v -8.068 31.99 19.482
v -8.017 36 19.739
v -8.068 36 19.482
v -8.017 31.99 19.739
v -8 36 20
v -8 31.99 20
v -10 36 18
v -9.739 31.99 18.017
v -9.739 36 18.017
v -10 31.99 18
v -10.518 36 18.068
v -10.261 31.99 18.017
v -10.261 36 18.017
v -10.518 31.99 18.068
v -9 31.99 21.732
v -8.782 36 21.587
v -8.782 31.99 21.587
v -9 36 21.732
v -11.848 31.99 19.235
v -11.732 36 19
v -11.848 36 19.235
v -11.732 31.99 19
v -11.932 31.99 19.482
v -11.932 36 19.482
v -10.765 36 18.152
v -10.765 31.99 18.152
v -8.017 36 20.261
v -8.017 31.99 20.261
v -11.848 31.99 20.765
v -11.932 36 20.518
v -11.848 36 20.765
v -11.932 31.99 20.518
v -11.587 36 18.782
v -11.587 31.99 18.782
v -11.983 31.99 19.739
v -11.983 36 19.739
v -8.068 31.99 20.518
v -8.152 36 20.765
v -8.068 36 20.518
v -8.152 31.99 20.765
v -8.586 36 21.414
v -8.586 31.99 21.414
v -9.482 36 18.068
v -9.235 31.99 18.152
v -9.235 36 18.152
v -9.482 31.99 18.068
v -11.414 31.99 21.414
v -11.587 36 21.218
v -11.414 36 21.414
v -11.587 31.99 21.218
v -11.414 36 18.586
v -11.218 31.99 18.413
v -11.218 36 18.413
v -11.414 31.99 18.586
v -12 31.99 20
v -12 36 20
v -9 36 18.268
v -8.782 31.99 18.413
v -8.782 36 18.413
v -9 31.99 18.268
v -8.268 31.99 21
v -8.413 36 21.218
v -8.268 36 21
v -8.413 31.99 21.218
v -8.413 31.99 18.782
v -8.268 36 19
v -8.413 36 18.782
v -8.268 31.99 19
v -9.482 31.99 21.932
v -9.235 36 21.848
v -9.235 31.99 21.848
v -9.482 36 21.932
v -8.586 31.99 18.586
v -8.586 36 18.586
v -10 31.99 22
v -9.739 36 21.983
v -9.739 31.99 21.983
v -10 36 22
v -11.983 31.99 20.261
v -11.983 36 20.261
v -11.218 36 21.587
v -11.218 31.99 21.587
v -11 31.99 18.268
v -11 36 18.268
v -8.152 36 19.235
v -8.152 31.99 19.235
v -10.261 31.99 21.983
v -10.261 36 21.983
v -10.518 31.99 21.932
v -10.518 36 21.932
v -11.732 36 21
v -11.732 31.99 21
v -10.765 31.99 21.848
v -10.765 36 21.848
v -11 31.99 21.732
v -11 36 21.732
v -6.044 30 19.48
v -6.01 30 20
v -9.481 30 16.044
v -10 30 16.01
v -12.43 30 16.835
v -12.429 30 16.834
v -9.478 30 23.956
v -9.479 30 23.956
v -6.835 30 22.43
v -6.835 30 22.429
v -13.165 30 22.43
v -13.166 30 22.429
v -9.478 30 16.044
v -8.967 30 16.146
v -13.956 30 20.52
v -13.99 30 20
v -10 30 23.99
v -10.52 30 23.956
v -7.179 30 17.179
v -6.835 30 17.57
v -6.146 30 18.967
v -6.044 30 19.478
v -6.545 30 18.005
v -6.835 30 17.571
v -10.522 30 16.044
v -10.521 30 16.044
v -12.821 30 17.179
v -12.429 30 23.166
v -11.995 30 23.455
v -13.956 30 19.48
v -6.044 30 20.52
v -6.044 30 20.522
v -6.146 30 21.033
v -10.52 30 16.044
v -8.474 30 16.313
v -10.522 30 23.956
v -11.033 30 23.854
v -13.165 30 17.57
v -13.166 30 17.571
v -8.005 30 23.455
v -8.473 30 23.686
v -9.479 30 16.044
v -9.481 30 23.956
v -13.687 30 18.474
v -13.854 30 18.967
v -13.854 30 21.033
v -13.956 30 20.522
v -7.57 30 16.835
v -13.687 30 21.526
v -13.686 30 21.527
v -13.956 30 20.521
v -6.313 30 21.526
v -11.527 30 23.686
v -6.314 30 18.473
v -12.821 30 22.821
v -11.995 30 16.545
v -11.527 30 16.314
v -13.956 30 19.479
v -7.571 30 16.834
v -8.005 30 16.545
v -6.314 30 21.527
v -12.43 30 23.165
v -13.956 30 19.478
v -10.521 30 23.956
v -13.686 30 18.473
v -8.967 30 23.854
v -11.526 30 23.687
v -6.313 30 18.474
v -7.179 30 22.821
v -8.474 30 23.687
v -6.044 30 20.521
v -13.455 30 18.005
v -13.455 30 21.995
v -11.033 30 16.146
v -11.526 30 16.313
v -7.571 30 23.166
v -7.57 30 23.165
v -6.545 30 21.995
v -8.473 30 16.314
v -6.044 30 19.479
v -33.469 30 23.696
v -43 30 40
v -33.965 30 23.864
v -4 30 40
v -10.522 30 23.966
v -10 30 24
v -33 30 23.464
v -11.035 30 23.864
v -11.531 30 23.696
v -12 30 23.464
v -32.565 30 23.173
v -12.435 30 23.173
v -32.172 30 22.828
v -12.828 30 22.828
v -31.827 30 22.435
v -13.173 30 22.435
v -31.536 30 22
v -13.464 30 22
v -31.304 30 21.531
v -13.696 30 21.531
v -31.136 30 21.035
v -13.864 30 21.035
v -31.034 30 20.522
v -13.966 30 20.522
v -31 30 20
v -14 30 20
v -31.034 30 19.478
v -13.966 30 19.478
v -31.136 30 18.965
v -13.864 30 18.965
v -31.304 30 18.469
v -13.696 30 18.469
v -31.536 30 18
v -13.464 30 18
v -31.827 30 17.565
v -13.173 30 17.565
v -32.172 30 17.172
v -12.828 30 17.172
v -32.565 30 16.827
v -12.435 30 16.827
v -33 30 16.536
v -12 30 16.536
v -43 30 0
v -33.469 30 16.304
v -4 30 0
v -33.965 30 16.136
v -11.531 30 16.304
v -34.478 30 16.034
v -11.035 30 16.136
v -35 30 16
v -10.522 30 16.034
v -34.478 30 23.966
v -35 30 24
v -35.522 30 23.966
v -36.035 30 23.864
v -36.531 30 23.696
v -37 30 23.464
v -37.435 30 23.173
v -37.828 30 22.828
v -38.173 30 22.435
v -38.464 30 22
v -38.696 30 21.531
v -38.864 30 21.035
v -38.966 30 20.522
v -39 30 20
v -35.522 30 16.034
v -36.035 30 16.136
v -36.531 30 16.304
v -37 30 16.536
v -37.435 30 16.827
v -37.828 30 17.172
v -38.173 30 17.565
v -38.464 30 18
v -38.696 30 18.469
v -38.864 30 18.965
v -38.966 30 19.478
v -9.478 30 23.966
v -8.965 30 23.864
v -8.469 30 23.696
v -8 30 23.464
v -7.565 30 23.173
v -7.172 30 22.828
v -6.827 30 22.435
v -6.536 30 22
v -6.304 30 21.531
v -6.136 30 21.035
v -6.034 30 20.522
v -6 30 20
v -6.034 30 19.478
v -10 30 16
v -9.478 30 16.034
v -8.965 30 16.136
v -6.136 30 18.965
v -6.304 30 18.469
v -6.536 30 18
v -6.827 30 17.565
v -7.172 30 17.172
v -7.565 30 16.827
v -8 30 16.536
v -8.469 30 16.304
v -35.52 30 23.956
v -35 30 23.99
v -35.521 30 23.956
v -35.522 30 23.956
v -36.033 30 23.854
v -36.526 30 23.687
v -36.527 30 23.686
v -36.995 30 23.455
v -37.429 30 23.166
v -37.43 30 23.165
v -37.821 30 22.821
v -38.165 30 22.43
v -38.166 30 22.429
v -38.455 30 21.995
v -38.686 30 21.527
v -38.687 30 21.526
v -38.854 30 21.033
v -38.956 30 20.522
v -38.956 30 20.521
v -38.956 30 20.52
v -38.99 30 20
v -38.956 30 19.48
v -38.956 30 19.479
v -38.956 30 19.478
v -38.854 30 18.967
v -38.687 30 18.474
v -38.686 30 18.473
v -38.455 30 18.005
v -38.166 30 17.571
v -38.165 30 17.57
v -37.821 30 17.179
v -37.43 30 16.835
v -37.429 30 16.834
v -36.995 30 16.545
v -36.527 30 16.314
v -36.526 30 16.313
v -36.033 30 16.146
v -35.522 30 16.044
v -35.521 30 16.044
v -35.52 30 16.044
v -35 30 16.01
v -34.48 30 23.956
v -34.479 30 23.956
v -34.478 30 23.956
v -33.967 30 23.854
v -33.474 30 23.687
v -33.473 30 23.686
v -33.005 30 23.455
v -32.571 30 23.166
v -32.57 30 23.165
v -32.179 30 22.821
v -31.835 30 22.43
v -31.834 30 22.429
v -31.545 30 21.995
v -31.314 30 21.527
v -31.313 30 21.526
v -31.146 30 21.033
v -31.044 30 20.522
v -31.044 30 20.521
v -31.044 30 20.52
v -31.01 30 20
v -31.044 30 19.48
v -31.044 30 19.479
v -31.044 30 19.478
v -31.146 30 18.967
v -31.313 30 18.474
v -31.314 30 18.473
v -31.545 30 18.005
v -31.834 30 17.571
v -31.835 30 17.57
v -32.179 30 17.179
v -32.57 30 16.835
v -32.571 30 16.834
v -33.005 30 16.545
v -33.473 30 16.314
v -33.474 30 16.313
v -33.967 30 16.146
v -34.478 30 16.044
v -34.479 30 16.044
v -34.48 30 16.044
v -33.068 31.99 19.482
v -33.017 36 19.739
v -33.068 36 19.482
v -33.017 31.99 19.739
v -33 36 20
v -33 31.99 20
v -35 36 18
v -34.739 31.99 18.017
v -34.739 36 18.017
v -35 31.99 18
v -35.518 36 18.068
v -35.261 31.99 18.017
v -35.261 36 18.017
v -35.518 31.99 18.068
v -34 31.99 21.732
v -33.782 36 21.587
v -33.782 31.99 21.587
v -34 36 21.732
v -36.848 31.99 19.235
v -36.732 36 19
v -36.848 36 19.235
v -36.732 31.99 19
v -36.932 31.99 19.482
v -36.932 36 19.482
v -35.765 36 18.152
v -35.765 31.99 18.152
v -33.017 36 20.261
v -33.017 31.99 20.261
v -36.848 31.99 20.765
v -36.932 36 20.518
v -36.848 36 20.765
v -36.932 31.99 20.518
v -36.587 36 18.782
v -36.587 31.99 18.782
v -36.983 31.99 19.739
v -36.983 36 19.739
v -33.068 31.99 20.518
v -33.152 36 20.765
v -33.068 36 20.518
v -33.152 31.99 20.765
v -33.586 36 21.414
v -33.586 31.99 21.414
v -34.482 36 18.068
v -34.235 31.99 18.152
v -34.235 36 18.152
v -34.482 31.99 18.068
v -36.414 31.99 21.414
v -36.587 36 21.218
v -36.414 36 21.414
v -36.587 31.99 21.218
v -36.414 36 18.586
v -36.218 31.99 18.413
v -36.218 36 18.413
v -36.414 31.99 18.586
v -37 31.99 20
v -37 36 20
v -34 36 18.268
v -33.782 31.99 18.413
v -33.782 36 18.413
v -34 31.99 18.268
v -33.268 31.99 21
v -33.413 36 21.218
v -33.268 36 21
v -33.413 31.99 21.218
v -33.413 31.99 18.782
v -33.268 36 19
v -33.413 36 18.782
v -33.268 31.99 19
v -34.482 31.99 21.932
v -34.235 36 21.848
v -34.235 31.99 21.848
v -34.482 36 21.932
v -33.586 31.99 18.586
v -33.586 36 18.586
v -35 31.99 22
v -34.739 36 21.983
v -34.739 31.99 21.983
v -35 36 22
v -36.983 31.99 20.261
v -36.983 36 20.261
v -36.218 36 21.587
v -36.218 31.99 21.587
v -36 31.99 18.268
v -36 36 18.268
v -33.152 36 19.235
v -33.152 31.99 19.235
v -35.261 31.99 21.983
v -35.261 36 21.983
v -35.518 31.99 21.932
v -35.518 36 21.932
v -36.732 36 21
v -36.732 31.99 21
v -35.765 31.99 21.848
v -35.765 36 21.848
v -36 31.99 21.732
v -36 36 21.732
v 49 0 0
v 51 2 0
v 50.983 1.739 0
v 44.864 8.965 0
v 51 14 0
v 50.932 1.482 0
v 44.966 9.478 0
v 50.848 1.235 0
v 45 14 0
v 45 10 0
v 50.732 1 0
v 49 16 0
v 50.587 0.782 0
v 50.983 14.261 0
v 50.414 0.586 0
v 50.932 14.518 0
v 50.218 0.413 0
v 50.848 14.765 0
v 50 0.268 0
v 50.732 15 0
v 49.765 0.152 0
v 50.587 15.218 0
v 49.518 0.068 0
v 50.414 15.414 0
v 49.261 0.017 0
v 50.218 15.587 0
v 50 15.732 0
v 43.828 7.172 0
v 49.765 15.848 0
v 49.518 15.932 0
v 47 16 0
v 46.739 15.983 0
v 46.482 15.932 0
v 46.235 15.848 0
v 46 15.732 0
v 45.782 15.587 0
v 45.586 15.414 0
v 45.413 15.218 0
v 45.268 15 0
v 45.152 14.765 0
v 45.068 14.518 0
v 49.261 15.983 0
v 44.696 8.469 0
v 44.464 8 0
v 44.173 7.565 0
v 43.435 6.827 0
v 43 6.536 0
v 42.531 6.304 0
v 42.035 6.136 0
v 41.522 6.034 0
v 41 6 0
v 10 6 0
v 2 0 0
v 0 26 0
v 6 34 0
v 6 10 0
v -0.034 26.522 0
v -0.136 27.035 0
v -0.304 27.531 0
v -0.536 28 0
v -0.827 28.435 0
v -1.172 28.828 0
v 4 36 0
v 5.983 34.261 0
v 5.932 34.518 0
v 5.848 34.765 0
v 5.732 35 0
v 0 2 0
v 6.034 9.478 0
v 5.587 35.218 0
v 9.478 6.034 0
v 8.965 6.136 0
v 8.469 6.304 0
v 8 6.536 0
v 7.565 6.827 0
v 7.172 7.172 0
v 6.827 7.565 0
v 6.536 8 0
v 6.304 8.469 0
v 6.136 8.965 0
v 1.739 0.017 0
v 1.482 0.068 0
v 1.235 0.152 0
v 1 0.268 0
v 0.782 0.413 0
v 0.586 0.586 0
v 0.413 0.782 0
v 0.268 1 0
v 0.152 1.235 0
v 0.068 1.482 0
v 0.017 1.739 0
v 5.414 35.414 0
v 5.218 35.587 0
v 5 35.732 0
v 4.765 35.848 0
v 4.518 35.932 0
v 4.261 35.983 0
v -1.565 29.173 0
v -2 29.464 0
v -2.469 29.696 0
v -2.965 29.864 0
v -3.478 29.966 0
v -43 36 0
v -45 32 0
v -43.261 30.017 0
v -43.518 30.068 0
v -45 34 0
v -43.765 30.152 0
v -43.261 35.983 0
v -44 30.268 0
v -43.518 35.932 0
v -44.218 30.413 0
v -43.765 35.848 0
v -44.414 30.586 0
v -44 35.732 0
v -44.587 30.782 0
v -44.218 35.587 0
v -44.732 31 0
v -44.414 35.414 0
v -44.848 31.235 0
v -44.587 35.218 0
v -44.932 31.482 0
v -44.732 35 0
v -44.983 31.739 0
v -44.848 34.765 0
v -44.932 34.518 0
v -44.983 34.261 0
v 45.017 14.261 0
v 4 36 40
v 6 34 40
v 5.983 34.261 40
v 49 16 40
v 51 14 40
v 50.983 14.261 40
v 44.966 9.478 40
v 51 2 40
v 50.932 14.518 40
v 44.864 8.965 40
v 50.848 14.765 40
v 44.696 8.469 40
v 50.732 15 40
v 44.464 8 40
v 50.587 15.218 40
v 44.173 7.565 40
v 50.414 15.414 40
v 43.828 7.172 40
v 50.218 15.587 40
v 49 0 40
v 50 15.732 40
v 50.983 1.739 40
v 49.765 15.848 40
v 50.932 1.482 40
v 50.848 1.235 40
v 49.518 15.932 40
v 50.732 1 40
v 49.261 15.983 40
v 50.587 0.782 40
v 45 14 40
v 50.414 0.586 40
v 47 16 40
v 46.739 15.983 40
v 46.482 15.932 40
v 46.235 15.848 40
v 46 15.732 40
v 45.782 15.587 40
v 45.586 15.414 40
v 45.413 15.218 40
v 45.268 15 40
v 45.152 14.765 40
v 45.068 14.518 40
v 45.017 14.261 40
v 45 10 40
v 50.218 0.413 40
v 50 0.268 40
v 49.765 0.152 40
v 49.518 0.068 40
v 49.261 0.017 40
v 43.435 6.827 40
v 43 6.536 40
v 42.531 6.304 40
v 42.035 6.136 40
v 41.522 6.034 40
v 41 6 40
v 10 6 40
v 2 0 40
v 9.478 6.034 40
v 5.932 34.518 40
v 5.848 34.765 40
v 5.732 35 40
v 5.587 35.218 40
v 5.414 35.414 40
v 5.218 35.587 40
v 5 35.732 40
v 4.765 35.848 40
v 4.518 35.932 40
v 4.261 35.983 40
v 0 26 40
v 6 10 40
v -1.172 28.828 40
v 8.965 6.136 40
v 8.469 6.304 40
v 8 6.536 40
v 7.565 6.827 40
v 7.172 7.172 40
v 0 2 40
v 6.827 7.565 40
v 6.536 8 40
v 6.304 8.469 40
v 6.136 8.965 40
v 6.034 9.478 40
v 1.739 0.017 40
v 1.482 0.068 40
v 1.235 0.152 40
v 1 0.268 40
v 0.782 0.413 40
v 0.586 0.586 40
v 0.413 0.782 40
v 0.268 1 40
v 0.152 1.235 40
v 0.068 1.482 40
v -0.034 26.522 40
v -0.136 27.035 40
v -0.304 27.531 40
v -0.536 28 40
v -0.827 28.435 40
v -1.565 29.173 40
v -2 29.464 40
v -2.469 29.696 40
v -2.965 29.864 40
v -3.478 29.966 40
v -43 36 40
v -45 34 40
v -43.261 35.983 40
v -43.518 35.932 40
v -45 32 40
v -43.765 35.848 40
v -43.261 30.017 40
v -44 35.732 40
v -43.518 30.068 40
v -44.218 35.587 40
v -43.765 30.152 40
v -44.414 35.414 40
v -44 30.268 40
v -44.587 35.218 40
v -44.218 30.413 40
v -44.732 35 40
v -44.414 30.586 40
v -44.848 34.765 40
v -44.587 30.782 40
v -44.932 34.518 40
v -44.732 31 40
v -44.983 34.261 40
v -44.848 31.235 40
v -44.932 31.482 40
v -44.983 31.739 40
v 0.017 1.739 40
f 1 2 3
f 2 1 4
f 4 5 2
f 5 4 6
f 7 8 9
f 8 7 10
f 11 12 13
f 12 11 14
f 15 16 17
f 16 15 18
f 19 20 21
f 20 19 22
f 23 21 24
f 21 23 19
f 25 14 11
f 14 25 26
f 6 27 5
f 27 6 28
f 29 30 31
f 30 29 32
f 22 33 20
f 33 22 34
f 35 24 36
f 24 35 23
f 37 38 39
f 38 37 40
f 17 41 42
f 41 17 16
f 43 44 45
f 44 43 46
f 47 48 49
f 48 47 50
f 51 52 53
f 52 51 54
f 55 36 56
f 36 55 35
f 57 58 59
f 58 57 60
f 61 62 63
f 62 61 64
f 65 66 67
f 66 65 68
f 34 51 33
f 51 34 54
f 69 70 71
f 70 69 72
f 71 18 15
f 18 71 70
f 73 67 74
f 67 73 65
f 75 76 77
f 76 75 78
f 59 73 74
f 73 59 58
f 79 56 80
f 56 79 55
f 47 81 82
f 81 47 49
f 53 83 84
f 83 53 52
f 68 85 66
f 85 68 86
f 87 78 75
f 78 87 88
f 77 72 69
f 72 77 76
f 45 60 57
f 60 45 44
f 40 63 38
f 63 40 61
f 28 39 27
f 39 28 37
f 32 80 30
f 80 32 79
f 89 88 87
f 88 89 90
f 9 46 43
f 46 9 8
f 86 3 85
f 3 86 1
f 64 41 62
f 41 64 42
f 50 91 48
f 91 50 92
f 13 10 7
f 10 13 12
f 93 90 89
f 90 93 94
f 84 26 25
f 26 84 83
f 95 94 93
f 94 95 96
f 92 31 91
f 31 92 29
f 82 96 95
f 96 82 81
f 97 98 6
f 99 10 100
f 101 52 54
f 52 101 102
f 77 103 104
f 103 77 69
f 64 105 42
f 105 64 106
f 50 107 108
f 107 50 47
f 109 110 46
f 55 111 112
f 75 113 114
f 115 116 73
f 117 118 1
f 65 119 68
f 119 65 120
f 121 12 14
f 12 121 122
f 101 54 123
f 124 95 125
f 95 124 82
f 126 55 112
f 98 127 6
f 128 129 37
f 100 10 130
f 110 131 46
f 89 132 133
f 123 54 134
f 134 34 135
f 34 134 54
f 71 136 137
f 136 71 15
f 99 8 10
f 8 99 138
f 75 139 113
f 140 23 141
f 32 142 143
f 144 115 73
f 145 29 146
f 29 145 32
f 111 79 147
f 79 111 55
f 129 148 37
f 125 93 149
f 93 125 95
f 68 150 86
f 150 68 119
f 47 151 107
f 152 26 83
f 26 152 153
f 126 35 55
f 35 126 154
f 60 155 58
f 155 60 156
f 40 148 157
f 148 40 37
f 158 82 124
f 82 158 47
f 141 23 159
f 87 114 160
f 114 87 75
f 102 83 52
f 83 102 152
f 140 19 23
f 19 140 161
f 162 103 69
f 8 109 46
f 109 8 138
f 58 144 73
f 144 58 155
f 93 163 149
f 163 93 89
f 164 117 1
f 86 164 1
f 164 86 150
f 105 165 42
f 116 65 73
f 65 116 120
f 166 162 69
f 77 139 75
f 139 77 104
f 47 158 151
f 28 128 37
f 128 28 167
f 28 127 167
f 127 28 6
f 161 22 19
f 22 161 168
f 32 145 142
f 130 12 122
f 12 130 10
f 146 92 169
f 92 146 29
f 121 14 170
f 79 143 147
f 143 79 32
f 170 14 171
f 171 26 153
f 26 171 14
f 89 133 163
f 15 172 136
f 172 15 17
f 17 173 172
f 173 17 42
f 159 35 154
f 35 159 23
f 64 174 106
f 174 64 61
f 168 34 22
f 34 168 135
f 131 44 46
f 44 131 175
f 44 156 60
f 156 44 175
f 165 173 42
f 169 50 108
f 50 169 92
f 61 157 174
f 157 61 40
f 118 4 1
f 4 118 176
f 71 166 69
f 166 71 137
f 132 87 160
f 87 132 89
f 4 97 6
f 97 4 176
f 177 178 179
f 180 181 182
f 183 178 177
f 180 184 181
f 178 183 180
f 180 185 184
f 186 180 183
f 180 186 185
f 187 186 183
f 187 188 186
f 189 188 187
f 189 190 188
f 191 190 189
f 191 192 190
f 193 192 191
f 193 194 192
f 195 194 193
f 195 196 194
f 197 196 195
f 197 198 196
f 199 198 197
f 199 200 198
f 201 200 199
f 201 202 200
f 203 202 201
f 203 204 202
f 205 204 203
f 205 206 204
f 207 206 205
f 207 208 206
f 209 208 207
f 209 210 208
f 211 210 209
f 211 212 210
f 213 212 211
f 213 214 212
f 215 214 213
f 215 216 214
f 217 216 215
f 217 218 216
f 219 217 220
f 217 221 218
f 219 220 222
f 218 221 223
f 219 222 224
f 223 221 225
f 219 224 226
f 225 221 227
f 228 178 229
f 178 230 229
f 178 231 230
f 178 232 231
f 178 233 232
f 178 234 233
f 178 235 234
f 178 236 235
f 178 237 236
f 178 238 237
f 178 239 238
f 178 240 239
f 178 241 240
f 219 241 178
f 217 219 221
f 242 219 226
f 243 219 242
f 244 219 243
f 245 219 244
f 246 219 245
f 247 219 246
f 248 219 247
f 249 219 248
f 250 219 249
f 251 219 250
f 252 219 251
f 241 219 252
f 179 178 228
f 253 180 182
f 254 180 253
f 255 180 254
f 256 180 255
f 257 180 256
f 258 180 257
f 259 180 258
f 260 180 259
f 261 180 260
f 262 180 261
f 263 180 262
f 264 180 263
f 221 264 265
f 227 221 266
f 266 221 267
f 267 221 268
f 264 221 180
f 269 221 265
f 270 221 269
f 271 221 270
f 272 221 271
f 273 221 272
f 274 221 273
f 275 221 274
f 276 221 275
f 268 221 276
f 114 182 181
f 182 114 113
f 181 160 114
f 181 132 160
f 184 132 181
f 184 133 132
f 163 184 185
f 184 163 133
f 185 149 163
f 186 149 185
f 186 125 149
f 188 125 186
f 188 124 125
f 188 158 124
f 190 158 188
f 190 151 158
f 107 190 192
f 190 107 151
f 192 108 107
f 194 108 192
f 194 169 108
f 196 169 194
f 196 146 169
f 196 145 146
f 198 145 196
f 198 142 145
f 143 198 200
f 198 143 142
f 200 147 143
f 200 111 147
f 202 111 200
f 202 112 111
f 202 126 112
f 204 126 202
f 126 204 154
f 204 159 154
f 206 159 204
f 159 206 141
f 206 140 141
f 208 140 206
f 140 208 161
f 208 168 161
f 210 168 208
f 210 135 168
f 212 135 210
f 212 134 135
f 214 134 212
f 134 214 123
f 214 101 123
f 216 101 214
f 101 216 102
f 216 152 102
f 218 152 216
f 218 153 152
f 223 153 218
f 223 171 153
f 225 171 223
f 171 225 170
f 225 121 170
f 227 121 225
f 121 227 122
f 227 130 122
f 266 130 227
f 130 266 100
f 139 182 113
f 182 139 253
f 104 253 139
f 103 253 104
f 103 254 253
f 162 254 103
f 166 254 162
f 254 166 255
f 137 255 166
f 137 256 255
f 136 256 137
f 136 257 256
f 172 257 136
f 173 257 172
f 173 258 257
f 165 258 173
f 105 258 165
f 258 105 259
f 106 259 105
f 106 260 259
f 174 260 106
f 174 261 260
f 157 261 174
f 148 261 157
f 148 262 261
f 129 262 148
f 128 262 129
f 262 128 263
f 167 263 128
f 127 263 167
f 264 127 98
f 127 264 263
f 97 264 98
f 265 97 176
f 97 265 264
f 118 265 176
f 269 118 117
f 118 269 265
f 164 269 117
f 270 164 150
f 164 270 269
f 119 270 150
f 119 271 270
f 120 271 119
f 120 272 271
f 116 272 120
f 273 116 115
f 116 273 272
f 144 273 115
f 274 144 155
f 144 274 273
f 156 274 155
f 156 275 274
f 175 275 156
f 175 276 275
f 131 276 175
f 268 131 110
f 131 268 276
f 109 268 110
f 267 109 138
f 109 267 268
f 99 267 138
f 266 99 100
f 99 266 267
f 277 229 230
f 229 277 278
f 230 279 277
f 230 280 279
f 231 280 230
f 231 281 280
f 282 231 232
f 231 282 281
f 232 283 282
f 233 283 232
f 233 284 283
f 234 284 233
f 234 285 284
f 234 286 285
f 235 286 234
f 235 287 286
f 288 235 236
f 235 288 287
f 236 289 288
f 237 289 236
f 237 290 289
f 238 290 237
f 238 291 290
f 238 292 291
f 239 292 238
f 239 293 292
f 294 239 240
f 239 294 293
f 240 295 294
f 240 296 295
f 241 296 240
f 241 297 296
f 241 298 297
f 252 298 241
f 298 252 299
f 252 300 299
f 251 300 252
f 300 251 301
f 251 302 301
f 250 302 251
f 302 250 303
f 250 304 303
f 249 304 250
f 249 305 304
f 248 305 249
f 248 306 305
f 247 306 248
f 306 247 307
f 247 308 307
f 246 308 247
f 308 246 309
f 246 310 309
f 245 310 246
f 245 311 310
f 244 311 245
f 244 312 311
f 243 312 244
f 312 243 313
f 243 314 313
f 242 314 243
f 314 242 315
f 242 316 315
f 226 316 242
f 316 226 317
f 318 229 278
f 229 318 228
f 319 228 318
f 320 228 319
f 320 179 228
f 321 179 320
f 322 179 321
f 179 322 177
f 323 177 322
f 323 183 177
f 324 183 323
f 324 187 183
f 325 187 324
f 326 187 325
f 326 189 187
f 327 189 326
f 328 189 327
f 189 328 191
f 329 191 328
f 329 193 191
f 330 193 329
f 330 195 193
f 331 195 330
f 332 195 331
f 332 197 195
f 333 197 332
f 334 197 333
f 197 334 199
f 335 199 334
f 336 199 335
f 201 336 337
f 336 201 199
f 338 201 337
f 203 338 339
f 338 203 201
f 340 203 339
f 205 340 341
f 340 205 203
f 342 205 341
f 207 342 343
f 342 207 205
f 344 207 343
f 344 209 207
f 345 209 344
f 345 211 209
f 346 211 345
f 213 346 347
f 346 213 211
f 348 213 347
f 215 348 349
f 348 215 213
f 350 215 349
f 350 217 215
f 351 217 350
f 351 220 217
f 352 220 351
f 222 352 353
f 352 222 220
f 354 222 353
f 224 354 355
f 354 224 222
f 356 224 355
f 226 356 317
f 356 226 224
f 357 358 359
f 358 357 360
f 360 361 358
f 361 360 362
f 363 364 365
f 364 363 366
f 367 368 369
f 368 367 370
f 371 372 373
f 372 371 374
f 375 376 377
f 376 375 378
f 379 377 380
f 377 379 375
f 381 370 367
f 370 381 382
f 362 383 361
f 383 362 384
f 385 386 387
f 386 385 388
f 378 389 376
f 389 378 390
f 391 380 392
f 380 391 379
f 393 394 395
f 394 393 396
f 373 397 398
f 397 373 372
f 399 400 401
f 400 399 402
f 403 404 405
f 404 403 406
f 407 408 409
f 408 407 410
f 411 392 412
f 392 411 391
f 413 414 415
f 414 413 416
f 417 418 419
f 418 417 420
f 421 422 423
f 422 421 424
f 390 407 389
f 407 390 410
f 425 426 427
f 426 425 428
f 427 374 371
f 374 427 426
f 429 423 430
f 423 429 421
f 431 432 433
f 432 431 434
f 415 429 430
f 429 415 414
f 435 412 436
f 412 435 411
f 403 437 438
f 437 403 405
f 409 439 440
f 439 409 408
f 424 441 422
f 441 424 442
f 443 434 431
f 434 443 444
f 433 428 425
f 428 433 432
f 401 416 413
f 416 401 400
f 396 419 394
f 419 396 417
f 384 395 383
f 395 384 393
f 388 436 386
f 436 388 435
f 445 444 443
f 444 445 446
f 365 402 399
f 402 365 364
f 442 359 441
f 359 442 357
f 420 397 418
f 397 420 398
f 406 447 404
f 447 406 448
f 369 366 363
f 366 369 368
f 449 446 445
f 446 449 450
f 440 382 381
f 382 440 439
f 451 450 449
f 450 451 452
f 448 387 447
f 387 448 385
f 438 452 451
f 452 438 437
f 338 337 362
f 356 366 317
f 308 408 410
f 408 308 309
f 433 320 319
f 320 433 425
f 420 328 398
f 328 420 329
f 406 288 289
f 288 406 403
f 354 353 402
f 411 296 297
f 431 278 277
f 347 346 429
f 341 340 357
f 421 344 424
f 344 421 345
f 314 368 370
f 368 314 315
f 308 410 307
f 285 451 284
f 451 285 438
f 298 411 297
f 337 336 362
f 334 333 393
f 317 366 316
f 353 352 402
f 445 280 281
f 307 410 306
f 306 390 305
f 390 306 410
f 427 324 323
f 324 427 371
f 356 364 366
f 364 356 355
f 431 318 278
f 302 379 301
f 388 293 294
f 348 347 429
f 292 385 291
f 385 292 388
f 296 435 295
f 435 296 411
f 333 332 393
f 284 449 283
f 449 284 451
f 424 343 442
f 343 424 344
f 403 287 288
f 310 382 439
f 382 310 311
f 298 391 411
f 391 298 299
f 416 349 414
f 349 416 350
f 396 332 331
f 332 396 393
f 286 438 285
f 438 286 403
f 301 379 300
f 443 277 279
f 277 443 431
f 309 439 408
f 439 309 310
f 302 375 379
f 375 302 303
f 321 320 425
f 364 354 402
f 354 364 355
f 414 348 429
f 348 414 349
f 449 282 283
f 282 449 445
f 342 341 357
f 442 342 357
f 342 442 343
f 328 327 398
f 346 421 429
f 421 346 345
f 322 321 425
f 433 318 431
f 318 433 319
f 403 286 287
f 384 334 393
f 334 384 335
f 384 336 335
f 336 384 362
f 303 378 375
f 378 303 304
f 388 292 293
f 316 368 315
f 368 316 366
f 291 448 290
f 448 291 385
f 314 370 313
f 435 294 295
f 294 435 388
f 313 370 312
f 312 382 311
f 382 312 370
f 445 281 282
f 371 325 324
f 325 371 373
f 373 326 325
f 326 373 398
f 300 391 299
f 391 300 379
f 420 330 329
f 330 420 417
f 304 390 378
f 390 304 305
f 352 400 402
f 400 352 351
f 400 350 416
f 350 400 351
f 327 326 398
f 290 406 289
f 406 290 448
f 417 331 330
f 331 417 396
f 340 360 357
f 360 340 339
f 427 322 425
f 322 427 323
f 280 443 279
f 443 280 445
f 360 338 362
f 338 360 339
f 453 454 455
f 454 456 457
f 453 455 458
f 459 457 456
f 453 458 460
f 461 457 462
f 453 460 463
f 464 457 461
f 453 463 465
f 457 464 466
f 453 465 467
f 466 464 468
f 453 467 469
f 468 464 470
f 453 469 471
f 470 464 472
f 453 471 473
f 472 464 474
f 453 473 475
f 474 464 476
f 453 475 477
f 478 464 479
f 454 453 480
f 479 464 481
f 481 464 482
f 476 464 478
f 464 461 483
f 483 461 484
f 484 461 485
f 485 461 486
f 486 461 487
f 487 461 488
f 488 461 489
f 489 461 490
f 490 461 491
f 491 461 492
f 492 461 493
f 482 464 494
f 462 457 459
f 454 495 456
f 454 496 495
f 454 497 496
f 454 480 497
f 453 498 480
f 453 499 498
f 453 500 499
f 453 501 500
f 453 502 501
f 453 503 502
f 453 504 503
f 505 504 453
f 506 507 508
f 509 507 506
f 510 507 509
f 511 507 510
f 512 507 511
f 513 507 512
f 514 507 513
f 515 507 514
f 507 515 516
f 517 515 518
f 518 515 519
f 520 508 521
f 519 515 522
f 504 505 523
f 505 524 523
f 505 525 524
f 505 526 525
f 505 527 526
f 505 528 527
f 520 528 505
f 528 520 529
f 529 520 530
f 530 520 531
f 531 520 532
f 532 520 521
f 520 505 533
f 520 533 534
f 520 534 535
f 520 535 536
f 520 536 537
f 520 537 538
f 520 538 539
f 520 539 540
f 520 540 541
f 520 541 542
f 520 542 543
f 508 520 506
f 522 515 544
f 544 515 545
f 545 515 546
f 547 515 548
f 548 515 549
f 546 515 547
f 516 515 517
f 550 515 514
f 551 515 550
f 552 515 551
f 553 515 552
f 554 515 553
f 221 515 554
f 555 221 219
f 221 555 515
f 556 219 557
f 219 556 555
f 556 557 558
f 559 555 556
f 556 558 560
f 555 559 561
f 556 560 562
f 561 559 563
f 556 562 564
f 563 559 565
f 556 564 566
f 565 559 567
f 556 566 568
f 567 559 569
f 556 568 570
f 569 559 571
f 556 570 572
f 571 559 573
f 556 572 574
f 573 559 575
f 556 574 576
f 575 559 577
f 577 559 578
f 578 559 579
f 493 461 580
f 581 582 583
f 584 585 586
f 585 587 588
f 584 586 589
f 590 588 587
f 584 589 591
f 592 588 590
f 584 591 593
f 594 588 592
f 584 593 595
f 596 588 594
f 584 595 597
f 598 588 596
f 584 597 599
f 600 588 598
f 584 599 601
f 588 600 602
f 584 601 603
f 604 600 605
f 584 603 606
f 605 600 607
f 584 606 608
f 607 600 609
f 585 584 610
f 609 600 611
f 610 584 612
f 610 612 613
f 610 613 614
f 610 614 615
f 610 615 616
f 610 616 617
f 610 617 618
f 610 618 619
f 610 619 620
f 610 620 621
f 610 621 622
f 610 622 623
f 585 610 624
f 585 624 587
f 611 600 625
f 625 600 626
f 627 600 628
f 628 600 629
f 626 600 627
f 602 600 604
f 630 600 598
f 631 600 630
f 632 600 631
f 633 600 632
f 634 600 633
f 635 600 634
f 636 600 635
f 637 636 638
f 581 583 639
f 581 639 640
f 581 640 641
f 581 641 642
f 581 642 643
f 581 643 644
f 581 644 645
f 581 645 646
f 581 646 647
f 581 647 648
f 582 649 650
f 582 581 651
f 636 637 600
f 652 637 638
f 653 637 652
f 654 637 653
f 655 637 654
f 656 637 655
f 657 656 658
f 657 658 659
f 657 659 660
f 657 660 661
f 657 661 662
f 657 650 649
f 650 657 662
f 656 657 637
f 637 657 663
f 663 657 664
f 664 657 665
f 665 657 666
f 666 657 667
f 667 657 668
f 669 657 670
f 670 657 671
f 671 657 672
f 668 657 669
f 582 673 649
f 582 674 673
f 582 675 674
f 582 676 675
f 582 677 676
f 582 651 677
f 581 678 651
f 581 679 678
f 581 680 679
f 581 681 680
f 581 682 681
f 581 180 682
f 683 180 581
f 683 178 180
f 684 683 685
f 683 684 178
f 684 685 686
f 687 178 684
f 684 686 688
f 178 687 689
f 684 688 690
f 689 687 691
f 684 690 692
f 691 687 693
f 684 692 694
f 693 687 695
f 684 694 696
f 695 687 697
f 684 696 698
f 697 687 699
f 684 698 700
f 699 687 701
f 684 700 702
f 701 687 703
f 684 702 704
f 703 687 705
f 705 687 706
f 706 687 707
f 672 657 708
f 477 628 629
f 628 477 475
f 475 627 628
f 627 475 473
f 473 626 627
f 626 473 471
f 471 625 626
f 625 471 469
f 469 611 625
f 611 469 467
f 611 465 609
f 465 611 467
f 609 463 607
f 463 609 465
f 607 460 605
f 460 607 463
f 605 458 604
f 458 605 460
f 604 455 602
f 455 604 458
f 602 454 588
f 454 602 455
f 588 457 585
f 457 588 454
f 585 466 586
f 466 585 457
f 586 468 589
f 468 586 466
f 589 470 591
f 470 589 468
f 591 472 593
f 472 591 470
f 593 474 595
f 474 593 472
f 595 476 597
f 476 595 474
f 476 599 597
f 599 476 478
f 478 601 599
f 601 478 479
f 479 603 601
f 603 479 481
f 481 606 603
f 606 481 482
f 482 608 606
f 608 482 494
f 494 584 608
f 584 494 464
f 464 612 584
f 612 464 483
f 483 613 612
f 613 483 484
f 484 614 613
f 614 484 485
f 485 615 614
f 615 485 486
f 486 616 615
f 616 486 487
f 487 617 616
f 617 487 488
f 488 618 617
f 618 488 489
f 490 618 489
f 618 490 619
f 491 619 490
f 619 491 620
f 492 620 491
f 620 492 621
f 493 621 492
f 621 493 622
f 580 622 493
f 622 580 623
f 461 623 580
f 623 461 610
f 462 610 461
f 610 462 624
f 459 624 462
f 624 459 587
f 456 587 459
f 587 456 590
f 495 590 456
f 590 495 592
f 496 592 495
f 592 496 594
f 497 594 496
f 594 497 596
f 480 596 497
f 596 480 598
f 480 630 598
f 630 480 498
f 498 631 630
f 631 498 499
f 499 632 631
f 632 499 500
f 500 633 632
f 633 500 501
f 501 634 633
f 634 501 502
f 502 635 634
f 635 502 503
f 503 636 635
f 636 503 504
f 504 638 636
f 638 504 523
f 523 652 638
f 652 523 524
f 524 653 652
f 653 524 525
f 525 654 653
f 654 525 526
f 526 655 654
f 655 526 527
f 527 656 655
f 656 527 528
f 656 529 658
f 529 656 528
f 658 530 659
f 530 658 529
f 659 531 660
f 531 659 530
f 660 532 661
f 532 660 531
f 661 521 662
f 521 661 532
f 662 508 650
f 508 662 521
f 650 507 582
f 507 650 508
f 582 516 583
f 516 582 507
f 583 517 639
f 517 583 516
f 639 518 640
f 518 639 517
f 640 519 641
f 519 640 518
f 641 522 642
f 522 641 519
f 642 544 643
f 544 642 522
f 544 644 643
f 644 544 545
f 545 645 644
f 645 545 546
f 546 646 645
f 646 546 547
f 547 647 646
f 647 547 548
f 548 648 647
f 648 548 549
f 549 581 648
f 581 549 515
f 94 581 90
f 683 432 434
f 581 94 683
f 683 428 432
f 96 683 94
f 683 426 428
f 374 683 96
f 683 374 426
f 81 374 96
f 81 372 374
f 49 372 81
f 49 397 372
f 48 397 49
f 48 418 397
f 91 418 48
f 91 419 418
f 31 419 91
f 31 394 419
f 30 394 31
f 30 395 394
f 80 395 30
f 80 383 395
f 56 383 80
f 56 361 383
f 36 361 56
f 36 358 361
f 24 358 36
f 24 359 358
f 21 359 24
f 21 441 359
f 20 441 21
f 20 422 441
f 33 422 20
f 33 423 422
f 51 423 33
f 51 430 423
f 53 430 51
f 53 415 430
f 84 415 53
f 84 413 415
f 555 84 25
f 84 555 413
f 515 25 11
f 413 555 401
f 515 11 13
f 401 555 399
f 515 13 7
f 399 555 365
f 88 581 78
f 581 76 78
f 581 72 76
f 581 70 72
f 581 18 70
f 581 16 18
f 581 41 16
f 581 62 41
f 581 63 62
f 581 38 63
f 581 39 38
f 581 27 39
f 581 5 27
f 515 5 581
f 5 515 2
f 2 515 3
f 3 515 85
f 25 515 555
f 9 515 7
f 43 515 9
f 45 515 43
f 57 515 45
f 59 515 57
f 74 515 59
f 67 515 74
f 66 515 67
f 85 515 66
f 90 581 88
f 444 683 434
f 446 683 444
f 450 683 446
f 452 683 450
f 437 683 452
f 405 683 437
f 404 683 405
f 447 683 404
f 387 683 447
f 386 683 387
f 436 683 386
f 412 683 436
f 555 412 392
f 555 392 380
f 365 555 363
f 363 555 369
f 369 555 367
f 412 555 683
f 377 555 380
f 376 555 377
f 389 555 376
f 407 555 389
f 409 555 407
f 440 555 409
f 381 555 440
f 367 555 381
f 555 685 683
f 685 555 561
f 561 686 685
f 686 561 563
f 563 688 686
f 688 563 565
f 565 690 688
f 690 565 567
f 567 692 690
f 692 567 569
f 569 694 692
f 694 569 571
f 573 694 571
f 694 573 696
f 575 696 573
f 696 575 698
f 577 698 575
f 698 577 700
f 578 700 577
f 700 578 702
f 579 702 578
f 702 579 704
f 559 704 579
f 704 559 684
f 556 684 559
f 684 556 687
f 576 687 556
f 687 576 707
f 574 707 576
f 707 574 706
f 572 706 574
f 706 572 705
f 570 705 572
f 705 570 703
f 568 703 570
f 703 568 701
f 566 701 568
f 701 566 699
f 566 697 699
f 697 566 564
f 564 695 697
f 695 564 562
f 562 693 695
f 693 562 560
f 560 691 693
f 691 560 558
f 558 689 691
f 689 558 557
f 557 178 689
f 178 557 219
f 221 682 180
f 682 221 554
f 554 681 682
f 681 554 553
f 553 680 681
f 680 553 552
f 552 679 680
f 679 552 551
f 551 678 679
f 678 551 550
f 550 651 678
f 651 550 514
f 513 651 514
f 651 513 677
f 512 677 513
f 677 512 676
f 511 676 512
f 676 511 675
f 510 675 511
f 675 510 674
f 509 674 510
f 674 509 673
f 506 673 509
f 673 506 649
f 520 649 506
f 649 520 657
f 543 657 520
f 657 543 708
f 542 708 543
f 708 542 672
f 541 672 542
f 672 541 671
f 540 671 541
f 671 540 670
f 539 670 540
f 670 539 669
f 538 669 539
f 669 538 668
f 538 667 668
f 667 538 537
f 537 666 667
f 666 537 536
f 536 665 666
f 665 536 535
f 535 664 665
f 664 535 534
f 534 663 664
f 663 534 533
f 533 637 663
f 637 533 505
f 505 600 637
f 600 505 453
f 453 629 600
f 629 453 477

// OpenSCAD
// Under-Desk Headphone Hook — screws to the underside of a desk or shelf.
// The mounting plate points backwards so the screws are easy to reach.
// Prints lying on its side (as rendered) for strength. PETG or PLA.

/* [Hook] */
// Width of the hook (mm). Wider = gentler on the headband.
width = 40;             // [20:1:80]
// How far below the desk the headphones hang (mm)
drop = 30;              // [10:1:120]
// Length of the arm the headband rests on (mm)
arm_l = 45;             // [25:1:90]
// Lip height at the end of the arm (mm)
lip_h = 10;             // [4:1:25]
// Material thickness (mm)
t = 6;                  // [4:0.5:12]

/* [Mounting] */
// Length of the mounting plate (mm)
plate_l = 45;           // [30:1:80]
// Screw shank diameter (mm)
screw_d = 4;            // [2.5:0.1:6]
// Screw head diameter (mm)
head_d = 8;             // [5:0.1:12]

/* [Hidden] */
$fn = 48;
fillet = 4;
top = drop + t;

module profile() {
    offset(r = -fillet) offset(delta = fillet)
    offset(r = 2) offset(delta = -2) {
        translate([-plate_l, top - t]) square([plate_l + t, t]);   // plate
        square([t, top]);                                          // drop
        square([t + arm_l, t]);                                    // arm
        translate([t + arm_l - t, 0]) square([t, t + lip_h]);      // lip
    }
}

difference() {
    linear_extrude(width) profile();
    for (x = [-10, -plate_l + 10])
        translate([x, 0, width / 2]) rotate([-90, 0, 0]) {
            cylinder(d = screw_d, h = top + 1);
            // countersink on the underside of the plate
            translate([0, 0, top - t - 0.01])
                cylinder(d1 = head_d, d2 = screw_d, h = (head_d - screw_d) / 2);
            translate([0, 0, -1]) cylinder(d = head_d, h = top - t + 1);
        }
}
